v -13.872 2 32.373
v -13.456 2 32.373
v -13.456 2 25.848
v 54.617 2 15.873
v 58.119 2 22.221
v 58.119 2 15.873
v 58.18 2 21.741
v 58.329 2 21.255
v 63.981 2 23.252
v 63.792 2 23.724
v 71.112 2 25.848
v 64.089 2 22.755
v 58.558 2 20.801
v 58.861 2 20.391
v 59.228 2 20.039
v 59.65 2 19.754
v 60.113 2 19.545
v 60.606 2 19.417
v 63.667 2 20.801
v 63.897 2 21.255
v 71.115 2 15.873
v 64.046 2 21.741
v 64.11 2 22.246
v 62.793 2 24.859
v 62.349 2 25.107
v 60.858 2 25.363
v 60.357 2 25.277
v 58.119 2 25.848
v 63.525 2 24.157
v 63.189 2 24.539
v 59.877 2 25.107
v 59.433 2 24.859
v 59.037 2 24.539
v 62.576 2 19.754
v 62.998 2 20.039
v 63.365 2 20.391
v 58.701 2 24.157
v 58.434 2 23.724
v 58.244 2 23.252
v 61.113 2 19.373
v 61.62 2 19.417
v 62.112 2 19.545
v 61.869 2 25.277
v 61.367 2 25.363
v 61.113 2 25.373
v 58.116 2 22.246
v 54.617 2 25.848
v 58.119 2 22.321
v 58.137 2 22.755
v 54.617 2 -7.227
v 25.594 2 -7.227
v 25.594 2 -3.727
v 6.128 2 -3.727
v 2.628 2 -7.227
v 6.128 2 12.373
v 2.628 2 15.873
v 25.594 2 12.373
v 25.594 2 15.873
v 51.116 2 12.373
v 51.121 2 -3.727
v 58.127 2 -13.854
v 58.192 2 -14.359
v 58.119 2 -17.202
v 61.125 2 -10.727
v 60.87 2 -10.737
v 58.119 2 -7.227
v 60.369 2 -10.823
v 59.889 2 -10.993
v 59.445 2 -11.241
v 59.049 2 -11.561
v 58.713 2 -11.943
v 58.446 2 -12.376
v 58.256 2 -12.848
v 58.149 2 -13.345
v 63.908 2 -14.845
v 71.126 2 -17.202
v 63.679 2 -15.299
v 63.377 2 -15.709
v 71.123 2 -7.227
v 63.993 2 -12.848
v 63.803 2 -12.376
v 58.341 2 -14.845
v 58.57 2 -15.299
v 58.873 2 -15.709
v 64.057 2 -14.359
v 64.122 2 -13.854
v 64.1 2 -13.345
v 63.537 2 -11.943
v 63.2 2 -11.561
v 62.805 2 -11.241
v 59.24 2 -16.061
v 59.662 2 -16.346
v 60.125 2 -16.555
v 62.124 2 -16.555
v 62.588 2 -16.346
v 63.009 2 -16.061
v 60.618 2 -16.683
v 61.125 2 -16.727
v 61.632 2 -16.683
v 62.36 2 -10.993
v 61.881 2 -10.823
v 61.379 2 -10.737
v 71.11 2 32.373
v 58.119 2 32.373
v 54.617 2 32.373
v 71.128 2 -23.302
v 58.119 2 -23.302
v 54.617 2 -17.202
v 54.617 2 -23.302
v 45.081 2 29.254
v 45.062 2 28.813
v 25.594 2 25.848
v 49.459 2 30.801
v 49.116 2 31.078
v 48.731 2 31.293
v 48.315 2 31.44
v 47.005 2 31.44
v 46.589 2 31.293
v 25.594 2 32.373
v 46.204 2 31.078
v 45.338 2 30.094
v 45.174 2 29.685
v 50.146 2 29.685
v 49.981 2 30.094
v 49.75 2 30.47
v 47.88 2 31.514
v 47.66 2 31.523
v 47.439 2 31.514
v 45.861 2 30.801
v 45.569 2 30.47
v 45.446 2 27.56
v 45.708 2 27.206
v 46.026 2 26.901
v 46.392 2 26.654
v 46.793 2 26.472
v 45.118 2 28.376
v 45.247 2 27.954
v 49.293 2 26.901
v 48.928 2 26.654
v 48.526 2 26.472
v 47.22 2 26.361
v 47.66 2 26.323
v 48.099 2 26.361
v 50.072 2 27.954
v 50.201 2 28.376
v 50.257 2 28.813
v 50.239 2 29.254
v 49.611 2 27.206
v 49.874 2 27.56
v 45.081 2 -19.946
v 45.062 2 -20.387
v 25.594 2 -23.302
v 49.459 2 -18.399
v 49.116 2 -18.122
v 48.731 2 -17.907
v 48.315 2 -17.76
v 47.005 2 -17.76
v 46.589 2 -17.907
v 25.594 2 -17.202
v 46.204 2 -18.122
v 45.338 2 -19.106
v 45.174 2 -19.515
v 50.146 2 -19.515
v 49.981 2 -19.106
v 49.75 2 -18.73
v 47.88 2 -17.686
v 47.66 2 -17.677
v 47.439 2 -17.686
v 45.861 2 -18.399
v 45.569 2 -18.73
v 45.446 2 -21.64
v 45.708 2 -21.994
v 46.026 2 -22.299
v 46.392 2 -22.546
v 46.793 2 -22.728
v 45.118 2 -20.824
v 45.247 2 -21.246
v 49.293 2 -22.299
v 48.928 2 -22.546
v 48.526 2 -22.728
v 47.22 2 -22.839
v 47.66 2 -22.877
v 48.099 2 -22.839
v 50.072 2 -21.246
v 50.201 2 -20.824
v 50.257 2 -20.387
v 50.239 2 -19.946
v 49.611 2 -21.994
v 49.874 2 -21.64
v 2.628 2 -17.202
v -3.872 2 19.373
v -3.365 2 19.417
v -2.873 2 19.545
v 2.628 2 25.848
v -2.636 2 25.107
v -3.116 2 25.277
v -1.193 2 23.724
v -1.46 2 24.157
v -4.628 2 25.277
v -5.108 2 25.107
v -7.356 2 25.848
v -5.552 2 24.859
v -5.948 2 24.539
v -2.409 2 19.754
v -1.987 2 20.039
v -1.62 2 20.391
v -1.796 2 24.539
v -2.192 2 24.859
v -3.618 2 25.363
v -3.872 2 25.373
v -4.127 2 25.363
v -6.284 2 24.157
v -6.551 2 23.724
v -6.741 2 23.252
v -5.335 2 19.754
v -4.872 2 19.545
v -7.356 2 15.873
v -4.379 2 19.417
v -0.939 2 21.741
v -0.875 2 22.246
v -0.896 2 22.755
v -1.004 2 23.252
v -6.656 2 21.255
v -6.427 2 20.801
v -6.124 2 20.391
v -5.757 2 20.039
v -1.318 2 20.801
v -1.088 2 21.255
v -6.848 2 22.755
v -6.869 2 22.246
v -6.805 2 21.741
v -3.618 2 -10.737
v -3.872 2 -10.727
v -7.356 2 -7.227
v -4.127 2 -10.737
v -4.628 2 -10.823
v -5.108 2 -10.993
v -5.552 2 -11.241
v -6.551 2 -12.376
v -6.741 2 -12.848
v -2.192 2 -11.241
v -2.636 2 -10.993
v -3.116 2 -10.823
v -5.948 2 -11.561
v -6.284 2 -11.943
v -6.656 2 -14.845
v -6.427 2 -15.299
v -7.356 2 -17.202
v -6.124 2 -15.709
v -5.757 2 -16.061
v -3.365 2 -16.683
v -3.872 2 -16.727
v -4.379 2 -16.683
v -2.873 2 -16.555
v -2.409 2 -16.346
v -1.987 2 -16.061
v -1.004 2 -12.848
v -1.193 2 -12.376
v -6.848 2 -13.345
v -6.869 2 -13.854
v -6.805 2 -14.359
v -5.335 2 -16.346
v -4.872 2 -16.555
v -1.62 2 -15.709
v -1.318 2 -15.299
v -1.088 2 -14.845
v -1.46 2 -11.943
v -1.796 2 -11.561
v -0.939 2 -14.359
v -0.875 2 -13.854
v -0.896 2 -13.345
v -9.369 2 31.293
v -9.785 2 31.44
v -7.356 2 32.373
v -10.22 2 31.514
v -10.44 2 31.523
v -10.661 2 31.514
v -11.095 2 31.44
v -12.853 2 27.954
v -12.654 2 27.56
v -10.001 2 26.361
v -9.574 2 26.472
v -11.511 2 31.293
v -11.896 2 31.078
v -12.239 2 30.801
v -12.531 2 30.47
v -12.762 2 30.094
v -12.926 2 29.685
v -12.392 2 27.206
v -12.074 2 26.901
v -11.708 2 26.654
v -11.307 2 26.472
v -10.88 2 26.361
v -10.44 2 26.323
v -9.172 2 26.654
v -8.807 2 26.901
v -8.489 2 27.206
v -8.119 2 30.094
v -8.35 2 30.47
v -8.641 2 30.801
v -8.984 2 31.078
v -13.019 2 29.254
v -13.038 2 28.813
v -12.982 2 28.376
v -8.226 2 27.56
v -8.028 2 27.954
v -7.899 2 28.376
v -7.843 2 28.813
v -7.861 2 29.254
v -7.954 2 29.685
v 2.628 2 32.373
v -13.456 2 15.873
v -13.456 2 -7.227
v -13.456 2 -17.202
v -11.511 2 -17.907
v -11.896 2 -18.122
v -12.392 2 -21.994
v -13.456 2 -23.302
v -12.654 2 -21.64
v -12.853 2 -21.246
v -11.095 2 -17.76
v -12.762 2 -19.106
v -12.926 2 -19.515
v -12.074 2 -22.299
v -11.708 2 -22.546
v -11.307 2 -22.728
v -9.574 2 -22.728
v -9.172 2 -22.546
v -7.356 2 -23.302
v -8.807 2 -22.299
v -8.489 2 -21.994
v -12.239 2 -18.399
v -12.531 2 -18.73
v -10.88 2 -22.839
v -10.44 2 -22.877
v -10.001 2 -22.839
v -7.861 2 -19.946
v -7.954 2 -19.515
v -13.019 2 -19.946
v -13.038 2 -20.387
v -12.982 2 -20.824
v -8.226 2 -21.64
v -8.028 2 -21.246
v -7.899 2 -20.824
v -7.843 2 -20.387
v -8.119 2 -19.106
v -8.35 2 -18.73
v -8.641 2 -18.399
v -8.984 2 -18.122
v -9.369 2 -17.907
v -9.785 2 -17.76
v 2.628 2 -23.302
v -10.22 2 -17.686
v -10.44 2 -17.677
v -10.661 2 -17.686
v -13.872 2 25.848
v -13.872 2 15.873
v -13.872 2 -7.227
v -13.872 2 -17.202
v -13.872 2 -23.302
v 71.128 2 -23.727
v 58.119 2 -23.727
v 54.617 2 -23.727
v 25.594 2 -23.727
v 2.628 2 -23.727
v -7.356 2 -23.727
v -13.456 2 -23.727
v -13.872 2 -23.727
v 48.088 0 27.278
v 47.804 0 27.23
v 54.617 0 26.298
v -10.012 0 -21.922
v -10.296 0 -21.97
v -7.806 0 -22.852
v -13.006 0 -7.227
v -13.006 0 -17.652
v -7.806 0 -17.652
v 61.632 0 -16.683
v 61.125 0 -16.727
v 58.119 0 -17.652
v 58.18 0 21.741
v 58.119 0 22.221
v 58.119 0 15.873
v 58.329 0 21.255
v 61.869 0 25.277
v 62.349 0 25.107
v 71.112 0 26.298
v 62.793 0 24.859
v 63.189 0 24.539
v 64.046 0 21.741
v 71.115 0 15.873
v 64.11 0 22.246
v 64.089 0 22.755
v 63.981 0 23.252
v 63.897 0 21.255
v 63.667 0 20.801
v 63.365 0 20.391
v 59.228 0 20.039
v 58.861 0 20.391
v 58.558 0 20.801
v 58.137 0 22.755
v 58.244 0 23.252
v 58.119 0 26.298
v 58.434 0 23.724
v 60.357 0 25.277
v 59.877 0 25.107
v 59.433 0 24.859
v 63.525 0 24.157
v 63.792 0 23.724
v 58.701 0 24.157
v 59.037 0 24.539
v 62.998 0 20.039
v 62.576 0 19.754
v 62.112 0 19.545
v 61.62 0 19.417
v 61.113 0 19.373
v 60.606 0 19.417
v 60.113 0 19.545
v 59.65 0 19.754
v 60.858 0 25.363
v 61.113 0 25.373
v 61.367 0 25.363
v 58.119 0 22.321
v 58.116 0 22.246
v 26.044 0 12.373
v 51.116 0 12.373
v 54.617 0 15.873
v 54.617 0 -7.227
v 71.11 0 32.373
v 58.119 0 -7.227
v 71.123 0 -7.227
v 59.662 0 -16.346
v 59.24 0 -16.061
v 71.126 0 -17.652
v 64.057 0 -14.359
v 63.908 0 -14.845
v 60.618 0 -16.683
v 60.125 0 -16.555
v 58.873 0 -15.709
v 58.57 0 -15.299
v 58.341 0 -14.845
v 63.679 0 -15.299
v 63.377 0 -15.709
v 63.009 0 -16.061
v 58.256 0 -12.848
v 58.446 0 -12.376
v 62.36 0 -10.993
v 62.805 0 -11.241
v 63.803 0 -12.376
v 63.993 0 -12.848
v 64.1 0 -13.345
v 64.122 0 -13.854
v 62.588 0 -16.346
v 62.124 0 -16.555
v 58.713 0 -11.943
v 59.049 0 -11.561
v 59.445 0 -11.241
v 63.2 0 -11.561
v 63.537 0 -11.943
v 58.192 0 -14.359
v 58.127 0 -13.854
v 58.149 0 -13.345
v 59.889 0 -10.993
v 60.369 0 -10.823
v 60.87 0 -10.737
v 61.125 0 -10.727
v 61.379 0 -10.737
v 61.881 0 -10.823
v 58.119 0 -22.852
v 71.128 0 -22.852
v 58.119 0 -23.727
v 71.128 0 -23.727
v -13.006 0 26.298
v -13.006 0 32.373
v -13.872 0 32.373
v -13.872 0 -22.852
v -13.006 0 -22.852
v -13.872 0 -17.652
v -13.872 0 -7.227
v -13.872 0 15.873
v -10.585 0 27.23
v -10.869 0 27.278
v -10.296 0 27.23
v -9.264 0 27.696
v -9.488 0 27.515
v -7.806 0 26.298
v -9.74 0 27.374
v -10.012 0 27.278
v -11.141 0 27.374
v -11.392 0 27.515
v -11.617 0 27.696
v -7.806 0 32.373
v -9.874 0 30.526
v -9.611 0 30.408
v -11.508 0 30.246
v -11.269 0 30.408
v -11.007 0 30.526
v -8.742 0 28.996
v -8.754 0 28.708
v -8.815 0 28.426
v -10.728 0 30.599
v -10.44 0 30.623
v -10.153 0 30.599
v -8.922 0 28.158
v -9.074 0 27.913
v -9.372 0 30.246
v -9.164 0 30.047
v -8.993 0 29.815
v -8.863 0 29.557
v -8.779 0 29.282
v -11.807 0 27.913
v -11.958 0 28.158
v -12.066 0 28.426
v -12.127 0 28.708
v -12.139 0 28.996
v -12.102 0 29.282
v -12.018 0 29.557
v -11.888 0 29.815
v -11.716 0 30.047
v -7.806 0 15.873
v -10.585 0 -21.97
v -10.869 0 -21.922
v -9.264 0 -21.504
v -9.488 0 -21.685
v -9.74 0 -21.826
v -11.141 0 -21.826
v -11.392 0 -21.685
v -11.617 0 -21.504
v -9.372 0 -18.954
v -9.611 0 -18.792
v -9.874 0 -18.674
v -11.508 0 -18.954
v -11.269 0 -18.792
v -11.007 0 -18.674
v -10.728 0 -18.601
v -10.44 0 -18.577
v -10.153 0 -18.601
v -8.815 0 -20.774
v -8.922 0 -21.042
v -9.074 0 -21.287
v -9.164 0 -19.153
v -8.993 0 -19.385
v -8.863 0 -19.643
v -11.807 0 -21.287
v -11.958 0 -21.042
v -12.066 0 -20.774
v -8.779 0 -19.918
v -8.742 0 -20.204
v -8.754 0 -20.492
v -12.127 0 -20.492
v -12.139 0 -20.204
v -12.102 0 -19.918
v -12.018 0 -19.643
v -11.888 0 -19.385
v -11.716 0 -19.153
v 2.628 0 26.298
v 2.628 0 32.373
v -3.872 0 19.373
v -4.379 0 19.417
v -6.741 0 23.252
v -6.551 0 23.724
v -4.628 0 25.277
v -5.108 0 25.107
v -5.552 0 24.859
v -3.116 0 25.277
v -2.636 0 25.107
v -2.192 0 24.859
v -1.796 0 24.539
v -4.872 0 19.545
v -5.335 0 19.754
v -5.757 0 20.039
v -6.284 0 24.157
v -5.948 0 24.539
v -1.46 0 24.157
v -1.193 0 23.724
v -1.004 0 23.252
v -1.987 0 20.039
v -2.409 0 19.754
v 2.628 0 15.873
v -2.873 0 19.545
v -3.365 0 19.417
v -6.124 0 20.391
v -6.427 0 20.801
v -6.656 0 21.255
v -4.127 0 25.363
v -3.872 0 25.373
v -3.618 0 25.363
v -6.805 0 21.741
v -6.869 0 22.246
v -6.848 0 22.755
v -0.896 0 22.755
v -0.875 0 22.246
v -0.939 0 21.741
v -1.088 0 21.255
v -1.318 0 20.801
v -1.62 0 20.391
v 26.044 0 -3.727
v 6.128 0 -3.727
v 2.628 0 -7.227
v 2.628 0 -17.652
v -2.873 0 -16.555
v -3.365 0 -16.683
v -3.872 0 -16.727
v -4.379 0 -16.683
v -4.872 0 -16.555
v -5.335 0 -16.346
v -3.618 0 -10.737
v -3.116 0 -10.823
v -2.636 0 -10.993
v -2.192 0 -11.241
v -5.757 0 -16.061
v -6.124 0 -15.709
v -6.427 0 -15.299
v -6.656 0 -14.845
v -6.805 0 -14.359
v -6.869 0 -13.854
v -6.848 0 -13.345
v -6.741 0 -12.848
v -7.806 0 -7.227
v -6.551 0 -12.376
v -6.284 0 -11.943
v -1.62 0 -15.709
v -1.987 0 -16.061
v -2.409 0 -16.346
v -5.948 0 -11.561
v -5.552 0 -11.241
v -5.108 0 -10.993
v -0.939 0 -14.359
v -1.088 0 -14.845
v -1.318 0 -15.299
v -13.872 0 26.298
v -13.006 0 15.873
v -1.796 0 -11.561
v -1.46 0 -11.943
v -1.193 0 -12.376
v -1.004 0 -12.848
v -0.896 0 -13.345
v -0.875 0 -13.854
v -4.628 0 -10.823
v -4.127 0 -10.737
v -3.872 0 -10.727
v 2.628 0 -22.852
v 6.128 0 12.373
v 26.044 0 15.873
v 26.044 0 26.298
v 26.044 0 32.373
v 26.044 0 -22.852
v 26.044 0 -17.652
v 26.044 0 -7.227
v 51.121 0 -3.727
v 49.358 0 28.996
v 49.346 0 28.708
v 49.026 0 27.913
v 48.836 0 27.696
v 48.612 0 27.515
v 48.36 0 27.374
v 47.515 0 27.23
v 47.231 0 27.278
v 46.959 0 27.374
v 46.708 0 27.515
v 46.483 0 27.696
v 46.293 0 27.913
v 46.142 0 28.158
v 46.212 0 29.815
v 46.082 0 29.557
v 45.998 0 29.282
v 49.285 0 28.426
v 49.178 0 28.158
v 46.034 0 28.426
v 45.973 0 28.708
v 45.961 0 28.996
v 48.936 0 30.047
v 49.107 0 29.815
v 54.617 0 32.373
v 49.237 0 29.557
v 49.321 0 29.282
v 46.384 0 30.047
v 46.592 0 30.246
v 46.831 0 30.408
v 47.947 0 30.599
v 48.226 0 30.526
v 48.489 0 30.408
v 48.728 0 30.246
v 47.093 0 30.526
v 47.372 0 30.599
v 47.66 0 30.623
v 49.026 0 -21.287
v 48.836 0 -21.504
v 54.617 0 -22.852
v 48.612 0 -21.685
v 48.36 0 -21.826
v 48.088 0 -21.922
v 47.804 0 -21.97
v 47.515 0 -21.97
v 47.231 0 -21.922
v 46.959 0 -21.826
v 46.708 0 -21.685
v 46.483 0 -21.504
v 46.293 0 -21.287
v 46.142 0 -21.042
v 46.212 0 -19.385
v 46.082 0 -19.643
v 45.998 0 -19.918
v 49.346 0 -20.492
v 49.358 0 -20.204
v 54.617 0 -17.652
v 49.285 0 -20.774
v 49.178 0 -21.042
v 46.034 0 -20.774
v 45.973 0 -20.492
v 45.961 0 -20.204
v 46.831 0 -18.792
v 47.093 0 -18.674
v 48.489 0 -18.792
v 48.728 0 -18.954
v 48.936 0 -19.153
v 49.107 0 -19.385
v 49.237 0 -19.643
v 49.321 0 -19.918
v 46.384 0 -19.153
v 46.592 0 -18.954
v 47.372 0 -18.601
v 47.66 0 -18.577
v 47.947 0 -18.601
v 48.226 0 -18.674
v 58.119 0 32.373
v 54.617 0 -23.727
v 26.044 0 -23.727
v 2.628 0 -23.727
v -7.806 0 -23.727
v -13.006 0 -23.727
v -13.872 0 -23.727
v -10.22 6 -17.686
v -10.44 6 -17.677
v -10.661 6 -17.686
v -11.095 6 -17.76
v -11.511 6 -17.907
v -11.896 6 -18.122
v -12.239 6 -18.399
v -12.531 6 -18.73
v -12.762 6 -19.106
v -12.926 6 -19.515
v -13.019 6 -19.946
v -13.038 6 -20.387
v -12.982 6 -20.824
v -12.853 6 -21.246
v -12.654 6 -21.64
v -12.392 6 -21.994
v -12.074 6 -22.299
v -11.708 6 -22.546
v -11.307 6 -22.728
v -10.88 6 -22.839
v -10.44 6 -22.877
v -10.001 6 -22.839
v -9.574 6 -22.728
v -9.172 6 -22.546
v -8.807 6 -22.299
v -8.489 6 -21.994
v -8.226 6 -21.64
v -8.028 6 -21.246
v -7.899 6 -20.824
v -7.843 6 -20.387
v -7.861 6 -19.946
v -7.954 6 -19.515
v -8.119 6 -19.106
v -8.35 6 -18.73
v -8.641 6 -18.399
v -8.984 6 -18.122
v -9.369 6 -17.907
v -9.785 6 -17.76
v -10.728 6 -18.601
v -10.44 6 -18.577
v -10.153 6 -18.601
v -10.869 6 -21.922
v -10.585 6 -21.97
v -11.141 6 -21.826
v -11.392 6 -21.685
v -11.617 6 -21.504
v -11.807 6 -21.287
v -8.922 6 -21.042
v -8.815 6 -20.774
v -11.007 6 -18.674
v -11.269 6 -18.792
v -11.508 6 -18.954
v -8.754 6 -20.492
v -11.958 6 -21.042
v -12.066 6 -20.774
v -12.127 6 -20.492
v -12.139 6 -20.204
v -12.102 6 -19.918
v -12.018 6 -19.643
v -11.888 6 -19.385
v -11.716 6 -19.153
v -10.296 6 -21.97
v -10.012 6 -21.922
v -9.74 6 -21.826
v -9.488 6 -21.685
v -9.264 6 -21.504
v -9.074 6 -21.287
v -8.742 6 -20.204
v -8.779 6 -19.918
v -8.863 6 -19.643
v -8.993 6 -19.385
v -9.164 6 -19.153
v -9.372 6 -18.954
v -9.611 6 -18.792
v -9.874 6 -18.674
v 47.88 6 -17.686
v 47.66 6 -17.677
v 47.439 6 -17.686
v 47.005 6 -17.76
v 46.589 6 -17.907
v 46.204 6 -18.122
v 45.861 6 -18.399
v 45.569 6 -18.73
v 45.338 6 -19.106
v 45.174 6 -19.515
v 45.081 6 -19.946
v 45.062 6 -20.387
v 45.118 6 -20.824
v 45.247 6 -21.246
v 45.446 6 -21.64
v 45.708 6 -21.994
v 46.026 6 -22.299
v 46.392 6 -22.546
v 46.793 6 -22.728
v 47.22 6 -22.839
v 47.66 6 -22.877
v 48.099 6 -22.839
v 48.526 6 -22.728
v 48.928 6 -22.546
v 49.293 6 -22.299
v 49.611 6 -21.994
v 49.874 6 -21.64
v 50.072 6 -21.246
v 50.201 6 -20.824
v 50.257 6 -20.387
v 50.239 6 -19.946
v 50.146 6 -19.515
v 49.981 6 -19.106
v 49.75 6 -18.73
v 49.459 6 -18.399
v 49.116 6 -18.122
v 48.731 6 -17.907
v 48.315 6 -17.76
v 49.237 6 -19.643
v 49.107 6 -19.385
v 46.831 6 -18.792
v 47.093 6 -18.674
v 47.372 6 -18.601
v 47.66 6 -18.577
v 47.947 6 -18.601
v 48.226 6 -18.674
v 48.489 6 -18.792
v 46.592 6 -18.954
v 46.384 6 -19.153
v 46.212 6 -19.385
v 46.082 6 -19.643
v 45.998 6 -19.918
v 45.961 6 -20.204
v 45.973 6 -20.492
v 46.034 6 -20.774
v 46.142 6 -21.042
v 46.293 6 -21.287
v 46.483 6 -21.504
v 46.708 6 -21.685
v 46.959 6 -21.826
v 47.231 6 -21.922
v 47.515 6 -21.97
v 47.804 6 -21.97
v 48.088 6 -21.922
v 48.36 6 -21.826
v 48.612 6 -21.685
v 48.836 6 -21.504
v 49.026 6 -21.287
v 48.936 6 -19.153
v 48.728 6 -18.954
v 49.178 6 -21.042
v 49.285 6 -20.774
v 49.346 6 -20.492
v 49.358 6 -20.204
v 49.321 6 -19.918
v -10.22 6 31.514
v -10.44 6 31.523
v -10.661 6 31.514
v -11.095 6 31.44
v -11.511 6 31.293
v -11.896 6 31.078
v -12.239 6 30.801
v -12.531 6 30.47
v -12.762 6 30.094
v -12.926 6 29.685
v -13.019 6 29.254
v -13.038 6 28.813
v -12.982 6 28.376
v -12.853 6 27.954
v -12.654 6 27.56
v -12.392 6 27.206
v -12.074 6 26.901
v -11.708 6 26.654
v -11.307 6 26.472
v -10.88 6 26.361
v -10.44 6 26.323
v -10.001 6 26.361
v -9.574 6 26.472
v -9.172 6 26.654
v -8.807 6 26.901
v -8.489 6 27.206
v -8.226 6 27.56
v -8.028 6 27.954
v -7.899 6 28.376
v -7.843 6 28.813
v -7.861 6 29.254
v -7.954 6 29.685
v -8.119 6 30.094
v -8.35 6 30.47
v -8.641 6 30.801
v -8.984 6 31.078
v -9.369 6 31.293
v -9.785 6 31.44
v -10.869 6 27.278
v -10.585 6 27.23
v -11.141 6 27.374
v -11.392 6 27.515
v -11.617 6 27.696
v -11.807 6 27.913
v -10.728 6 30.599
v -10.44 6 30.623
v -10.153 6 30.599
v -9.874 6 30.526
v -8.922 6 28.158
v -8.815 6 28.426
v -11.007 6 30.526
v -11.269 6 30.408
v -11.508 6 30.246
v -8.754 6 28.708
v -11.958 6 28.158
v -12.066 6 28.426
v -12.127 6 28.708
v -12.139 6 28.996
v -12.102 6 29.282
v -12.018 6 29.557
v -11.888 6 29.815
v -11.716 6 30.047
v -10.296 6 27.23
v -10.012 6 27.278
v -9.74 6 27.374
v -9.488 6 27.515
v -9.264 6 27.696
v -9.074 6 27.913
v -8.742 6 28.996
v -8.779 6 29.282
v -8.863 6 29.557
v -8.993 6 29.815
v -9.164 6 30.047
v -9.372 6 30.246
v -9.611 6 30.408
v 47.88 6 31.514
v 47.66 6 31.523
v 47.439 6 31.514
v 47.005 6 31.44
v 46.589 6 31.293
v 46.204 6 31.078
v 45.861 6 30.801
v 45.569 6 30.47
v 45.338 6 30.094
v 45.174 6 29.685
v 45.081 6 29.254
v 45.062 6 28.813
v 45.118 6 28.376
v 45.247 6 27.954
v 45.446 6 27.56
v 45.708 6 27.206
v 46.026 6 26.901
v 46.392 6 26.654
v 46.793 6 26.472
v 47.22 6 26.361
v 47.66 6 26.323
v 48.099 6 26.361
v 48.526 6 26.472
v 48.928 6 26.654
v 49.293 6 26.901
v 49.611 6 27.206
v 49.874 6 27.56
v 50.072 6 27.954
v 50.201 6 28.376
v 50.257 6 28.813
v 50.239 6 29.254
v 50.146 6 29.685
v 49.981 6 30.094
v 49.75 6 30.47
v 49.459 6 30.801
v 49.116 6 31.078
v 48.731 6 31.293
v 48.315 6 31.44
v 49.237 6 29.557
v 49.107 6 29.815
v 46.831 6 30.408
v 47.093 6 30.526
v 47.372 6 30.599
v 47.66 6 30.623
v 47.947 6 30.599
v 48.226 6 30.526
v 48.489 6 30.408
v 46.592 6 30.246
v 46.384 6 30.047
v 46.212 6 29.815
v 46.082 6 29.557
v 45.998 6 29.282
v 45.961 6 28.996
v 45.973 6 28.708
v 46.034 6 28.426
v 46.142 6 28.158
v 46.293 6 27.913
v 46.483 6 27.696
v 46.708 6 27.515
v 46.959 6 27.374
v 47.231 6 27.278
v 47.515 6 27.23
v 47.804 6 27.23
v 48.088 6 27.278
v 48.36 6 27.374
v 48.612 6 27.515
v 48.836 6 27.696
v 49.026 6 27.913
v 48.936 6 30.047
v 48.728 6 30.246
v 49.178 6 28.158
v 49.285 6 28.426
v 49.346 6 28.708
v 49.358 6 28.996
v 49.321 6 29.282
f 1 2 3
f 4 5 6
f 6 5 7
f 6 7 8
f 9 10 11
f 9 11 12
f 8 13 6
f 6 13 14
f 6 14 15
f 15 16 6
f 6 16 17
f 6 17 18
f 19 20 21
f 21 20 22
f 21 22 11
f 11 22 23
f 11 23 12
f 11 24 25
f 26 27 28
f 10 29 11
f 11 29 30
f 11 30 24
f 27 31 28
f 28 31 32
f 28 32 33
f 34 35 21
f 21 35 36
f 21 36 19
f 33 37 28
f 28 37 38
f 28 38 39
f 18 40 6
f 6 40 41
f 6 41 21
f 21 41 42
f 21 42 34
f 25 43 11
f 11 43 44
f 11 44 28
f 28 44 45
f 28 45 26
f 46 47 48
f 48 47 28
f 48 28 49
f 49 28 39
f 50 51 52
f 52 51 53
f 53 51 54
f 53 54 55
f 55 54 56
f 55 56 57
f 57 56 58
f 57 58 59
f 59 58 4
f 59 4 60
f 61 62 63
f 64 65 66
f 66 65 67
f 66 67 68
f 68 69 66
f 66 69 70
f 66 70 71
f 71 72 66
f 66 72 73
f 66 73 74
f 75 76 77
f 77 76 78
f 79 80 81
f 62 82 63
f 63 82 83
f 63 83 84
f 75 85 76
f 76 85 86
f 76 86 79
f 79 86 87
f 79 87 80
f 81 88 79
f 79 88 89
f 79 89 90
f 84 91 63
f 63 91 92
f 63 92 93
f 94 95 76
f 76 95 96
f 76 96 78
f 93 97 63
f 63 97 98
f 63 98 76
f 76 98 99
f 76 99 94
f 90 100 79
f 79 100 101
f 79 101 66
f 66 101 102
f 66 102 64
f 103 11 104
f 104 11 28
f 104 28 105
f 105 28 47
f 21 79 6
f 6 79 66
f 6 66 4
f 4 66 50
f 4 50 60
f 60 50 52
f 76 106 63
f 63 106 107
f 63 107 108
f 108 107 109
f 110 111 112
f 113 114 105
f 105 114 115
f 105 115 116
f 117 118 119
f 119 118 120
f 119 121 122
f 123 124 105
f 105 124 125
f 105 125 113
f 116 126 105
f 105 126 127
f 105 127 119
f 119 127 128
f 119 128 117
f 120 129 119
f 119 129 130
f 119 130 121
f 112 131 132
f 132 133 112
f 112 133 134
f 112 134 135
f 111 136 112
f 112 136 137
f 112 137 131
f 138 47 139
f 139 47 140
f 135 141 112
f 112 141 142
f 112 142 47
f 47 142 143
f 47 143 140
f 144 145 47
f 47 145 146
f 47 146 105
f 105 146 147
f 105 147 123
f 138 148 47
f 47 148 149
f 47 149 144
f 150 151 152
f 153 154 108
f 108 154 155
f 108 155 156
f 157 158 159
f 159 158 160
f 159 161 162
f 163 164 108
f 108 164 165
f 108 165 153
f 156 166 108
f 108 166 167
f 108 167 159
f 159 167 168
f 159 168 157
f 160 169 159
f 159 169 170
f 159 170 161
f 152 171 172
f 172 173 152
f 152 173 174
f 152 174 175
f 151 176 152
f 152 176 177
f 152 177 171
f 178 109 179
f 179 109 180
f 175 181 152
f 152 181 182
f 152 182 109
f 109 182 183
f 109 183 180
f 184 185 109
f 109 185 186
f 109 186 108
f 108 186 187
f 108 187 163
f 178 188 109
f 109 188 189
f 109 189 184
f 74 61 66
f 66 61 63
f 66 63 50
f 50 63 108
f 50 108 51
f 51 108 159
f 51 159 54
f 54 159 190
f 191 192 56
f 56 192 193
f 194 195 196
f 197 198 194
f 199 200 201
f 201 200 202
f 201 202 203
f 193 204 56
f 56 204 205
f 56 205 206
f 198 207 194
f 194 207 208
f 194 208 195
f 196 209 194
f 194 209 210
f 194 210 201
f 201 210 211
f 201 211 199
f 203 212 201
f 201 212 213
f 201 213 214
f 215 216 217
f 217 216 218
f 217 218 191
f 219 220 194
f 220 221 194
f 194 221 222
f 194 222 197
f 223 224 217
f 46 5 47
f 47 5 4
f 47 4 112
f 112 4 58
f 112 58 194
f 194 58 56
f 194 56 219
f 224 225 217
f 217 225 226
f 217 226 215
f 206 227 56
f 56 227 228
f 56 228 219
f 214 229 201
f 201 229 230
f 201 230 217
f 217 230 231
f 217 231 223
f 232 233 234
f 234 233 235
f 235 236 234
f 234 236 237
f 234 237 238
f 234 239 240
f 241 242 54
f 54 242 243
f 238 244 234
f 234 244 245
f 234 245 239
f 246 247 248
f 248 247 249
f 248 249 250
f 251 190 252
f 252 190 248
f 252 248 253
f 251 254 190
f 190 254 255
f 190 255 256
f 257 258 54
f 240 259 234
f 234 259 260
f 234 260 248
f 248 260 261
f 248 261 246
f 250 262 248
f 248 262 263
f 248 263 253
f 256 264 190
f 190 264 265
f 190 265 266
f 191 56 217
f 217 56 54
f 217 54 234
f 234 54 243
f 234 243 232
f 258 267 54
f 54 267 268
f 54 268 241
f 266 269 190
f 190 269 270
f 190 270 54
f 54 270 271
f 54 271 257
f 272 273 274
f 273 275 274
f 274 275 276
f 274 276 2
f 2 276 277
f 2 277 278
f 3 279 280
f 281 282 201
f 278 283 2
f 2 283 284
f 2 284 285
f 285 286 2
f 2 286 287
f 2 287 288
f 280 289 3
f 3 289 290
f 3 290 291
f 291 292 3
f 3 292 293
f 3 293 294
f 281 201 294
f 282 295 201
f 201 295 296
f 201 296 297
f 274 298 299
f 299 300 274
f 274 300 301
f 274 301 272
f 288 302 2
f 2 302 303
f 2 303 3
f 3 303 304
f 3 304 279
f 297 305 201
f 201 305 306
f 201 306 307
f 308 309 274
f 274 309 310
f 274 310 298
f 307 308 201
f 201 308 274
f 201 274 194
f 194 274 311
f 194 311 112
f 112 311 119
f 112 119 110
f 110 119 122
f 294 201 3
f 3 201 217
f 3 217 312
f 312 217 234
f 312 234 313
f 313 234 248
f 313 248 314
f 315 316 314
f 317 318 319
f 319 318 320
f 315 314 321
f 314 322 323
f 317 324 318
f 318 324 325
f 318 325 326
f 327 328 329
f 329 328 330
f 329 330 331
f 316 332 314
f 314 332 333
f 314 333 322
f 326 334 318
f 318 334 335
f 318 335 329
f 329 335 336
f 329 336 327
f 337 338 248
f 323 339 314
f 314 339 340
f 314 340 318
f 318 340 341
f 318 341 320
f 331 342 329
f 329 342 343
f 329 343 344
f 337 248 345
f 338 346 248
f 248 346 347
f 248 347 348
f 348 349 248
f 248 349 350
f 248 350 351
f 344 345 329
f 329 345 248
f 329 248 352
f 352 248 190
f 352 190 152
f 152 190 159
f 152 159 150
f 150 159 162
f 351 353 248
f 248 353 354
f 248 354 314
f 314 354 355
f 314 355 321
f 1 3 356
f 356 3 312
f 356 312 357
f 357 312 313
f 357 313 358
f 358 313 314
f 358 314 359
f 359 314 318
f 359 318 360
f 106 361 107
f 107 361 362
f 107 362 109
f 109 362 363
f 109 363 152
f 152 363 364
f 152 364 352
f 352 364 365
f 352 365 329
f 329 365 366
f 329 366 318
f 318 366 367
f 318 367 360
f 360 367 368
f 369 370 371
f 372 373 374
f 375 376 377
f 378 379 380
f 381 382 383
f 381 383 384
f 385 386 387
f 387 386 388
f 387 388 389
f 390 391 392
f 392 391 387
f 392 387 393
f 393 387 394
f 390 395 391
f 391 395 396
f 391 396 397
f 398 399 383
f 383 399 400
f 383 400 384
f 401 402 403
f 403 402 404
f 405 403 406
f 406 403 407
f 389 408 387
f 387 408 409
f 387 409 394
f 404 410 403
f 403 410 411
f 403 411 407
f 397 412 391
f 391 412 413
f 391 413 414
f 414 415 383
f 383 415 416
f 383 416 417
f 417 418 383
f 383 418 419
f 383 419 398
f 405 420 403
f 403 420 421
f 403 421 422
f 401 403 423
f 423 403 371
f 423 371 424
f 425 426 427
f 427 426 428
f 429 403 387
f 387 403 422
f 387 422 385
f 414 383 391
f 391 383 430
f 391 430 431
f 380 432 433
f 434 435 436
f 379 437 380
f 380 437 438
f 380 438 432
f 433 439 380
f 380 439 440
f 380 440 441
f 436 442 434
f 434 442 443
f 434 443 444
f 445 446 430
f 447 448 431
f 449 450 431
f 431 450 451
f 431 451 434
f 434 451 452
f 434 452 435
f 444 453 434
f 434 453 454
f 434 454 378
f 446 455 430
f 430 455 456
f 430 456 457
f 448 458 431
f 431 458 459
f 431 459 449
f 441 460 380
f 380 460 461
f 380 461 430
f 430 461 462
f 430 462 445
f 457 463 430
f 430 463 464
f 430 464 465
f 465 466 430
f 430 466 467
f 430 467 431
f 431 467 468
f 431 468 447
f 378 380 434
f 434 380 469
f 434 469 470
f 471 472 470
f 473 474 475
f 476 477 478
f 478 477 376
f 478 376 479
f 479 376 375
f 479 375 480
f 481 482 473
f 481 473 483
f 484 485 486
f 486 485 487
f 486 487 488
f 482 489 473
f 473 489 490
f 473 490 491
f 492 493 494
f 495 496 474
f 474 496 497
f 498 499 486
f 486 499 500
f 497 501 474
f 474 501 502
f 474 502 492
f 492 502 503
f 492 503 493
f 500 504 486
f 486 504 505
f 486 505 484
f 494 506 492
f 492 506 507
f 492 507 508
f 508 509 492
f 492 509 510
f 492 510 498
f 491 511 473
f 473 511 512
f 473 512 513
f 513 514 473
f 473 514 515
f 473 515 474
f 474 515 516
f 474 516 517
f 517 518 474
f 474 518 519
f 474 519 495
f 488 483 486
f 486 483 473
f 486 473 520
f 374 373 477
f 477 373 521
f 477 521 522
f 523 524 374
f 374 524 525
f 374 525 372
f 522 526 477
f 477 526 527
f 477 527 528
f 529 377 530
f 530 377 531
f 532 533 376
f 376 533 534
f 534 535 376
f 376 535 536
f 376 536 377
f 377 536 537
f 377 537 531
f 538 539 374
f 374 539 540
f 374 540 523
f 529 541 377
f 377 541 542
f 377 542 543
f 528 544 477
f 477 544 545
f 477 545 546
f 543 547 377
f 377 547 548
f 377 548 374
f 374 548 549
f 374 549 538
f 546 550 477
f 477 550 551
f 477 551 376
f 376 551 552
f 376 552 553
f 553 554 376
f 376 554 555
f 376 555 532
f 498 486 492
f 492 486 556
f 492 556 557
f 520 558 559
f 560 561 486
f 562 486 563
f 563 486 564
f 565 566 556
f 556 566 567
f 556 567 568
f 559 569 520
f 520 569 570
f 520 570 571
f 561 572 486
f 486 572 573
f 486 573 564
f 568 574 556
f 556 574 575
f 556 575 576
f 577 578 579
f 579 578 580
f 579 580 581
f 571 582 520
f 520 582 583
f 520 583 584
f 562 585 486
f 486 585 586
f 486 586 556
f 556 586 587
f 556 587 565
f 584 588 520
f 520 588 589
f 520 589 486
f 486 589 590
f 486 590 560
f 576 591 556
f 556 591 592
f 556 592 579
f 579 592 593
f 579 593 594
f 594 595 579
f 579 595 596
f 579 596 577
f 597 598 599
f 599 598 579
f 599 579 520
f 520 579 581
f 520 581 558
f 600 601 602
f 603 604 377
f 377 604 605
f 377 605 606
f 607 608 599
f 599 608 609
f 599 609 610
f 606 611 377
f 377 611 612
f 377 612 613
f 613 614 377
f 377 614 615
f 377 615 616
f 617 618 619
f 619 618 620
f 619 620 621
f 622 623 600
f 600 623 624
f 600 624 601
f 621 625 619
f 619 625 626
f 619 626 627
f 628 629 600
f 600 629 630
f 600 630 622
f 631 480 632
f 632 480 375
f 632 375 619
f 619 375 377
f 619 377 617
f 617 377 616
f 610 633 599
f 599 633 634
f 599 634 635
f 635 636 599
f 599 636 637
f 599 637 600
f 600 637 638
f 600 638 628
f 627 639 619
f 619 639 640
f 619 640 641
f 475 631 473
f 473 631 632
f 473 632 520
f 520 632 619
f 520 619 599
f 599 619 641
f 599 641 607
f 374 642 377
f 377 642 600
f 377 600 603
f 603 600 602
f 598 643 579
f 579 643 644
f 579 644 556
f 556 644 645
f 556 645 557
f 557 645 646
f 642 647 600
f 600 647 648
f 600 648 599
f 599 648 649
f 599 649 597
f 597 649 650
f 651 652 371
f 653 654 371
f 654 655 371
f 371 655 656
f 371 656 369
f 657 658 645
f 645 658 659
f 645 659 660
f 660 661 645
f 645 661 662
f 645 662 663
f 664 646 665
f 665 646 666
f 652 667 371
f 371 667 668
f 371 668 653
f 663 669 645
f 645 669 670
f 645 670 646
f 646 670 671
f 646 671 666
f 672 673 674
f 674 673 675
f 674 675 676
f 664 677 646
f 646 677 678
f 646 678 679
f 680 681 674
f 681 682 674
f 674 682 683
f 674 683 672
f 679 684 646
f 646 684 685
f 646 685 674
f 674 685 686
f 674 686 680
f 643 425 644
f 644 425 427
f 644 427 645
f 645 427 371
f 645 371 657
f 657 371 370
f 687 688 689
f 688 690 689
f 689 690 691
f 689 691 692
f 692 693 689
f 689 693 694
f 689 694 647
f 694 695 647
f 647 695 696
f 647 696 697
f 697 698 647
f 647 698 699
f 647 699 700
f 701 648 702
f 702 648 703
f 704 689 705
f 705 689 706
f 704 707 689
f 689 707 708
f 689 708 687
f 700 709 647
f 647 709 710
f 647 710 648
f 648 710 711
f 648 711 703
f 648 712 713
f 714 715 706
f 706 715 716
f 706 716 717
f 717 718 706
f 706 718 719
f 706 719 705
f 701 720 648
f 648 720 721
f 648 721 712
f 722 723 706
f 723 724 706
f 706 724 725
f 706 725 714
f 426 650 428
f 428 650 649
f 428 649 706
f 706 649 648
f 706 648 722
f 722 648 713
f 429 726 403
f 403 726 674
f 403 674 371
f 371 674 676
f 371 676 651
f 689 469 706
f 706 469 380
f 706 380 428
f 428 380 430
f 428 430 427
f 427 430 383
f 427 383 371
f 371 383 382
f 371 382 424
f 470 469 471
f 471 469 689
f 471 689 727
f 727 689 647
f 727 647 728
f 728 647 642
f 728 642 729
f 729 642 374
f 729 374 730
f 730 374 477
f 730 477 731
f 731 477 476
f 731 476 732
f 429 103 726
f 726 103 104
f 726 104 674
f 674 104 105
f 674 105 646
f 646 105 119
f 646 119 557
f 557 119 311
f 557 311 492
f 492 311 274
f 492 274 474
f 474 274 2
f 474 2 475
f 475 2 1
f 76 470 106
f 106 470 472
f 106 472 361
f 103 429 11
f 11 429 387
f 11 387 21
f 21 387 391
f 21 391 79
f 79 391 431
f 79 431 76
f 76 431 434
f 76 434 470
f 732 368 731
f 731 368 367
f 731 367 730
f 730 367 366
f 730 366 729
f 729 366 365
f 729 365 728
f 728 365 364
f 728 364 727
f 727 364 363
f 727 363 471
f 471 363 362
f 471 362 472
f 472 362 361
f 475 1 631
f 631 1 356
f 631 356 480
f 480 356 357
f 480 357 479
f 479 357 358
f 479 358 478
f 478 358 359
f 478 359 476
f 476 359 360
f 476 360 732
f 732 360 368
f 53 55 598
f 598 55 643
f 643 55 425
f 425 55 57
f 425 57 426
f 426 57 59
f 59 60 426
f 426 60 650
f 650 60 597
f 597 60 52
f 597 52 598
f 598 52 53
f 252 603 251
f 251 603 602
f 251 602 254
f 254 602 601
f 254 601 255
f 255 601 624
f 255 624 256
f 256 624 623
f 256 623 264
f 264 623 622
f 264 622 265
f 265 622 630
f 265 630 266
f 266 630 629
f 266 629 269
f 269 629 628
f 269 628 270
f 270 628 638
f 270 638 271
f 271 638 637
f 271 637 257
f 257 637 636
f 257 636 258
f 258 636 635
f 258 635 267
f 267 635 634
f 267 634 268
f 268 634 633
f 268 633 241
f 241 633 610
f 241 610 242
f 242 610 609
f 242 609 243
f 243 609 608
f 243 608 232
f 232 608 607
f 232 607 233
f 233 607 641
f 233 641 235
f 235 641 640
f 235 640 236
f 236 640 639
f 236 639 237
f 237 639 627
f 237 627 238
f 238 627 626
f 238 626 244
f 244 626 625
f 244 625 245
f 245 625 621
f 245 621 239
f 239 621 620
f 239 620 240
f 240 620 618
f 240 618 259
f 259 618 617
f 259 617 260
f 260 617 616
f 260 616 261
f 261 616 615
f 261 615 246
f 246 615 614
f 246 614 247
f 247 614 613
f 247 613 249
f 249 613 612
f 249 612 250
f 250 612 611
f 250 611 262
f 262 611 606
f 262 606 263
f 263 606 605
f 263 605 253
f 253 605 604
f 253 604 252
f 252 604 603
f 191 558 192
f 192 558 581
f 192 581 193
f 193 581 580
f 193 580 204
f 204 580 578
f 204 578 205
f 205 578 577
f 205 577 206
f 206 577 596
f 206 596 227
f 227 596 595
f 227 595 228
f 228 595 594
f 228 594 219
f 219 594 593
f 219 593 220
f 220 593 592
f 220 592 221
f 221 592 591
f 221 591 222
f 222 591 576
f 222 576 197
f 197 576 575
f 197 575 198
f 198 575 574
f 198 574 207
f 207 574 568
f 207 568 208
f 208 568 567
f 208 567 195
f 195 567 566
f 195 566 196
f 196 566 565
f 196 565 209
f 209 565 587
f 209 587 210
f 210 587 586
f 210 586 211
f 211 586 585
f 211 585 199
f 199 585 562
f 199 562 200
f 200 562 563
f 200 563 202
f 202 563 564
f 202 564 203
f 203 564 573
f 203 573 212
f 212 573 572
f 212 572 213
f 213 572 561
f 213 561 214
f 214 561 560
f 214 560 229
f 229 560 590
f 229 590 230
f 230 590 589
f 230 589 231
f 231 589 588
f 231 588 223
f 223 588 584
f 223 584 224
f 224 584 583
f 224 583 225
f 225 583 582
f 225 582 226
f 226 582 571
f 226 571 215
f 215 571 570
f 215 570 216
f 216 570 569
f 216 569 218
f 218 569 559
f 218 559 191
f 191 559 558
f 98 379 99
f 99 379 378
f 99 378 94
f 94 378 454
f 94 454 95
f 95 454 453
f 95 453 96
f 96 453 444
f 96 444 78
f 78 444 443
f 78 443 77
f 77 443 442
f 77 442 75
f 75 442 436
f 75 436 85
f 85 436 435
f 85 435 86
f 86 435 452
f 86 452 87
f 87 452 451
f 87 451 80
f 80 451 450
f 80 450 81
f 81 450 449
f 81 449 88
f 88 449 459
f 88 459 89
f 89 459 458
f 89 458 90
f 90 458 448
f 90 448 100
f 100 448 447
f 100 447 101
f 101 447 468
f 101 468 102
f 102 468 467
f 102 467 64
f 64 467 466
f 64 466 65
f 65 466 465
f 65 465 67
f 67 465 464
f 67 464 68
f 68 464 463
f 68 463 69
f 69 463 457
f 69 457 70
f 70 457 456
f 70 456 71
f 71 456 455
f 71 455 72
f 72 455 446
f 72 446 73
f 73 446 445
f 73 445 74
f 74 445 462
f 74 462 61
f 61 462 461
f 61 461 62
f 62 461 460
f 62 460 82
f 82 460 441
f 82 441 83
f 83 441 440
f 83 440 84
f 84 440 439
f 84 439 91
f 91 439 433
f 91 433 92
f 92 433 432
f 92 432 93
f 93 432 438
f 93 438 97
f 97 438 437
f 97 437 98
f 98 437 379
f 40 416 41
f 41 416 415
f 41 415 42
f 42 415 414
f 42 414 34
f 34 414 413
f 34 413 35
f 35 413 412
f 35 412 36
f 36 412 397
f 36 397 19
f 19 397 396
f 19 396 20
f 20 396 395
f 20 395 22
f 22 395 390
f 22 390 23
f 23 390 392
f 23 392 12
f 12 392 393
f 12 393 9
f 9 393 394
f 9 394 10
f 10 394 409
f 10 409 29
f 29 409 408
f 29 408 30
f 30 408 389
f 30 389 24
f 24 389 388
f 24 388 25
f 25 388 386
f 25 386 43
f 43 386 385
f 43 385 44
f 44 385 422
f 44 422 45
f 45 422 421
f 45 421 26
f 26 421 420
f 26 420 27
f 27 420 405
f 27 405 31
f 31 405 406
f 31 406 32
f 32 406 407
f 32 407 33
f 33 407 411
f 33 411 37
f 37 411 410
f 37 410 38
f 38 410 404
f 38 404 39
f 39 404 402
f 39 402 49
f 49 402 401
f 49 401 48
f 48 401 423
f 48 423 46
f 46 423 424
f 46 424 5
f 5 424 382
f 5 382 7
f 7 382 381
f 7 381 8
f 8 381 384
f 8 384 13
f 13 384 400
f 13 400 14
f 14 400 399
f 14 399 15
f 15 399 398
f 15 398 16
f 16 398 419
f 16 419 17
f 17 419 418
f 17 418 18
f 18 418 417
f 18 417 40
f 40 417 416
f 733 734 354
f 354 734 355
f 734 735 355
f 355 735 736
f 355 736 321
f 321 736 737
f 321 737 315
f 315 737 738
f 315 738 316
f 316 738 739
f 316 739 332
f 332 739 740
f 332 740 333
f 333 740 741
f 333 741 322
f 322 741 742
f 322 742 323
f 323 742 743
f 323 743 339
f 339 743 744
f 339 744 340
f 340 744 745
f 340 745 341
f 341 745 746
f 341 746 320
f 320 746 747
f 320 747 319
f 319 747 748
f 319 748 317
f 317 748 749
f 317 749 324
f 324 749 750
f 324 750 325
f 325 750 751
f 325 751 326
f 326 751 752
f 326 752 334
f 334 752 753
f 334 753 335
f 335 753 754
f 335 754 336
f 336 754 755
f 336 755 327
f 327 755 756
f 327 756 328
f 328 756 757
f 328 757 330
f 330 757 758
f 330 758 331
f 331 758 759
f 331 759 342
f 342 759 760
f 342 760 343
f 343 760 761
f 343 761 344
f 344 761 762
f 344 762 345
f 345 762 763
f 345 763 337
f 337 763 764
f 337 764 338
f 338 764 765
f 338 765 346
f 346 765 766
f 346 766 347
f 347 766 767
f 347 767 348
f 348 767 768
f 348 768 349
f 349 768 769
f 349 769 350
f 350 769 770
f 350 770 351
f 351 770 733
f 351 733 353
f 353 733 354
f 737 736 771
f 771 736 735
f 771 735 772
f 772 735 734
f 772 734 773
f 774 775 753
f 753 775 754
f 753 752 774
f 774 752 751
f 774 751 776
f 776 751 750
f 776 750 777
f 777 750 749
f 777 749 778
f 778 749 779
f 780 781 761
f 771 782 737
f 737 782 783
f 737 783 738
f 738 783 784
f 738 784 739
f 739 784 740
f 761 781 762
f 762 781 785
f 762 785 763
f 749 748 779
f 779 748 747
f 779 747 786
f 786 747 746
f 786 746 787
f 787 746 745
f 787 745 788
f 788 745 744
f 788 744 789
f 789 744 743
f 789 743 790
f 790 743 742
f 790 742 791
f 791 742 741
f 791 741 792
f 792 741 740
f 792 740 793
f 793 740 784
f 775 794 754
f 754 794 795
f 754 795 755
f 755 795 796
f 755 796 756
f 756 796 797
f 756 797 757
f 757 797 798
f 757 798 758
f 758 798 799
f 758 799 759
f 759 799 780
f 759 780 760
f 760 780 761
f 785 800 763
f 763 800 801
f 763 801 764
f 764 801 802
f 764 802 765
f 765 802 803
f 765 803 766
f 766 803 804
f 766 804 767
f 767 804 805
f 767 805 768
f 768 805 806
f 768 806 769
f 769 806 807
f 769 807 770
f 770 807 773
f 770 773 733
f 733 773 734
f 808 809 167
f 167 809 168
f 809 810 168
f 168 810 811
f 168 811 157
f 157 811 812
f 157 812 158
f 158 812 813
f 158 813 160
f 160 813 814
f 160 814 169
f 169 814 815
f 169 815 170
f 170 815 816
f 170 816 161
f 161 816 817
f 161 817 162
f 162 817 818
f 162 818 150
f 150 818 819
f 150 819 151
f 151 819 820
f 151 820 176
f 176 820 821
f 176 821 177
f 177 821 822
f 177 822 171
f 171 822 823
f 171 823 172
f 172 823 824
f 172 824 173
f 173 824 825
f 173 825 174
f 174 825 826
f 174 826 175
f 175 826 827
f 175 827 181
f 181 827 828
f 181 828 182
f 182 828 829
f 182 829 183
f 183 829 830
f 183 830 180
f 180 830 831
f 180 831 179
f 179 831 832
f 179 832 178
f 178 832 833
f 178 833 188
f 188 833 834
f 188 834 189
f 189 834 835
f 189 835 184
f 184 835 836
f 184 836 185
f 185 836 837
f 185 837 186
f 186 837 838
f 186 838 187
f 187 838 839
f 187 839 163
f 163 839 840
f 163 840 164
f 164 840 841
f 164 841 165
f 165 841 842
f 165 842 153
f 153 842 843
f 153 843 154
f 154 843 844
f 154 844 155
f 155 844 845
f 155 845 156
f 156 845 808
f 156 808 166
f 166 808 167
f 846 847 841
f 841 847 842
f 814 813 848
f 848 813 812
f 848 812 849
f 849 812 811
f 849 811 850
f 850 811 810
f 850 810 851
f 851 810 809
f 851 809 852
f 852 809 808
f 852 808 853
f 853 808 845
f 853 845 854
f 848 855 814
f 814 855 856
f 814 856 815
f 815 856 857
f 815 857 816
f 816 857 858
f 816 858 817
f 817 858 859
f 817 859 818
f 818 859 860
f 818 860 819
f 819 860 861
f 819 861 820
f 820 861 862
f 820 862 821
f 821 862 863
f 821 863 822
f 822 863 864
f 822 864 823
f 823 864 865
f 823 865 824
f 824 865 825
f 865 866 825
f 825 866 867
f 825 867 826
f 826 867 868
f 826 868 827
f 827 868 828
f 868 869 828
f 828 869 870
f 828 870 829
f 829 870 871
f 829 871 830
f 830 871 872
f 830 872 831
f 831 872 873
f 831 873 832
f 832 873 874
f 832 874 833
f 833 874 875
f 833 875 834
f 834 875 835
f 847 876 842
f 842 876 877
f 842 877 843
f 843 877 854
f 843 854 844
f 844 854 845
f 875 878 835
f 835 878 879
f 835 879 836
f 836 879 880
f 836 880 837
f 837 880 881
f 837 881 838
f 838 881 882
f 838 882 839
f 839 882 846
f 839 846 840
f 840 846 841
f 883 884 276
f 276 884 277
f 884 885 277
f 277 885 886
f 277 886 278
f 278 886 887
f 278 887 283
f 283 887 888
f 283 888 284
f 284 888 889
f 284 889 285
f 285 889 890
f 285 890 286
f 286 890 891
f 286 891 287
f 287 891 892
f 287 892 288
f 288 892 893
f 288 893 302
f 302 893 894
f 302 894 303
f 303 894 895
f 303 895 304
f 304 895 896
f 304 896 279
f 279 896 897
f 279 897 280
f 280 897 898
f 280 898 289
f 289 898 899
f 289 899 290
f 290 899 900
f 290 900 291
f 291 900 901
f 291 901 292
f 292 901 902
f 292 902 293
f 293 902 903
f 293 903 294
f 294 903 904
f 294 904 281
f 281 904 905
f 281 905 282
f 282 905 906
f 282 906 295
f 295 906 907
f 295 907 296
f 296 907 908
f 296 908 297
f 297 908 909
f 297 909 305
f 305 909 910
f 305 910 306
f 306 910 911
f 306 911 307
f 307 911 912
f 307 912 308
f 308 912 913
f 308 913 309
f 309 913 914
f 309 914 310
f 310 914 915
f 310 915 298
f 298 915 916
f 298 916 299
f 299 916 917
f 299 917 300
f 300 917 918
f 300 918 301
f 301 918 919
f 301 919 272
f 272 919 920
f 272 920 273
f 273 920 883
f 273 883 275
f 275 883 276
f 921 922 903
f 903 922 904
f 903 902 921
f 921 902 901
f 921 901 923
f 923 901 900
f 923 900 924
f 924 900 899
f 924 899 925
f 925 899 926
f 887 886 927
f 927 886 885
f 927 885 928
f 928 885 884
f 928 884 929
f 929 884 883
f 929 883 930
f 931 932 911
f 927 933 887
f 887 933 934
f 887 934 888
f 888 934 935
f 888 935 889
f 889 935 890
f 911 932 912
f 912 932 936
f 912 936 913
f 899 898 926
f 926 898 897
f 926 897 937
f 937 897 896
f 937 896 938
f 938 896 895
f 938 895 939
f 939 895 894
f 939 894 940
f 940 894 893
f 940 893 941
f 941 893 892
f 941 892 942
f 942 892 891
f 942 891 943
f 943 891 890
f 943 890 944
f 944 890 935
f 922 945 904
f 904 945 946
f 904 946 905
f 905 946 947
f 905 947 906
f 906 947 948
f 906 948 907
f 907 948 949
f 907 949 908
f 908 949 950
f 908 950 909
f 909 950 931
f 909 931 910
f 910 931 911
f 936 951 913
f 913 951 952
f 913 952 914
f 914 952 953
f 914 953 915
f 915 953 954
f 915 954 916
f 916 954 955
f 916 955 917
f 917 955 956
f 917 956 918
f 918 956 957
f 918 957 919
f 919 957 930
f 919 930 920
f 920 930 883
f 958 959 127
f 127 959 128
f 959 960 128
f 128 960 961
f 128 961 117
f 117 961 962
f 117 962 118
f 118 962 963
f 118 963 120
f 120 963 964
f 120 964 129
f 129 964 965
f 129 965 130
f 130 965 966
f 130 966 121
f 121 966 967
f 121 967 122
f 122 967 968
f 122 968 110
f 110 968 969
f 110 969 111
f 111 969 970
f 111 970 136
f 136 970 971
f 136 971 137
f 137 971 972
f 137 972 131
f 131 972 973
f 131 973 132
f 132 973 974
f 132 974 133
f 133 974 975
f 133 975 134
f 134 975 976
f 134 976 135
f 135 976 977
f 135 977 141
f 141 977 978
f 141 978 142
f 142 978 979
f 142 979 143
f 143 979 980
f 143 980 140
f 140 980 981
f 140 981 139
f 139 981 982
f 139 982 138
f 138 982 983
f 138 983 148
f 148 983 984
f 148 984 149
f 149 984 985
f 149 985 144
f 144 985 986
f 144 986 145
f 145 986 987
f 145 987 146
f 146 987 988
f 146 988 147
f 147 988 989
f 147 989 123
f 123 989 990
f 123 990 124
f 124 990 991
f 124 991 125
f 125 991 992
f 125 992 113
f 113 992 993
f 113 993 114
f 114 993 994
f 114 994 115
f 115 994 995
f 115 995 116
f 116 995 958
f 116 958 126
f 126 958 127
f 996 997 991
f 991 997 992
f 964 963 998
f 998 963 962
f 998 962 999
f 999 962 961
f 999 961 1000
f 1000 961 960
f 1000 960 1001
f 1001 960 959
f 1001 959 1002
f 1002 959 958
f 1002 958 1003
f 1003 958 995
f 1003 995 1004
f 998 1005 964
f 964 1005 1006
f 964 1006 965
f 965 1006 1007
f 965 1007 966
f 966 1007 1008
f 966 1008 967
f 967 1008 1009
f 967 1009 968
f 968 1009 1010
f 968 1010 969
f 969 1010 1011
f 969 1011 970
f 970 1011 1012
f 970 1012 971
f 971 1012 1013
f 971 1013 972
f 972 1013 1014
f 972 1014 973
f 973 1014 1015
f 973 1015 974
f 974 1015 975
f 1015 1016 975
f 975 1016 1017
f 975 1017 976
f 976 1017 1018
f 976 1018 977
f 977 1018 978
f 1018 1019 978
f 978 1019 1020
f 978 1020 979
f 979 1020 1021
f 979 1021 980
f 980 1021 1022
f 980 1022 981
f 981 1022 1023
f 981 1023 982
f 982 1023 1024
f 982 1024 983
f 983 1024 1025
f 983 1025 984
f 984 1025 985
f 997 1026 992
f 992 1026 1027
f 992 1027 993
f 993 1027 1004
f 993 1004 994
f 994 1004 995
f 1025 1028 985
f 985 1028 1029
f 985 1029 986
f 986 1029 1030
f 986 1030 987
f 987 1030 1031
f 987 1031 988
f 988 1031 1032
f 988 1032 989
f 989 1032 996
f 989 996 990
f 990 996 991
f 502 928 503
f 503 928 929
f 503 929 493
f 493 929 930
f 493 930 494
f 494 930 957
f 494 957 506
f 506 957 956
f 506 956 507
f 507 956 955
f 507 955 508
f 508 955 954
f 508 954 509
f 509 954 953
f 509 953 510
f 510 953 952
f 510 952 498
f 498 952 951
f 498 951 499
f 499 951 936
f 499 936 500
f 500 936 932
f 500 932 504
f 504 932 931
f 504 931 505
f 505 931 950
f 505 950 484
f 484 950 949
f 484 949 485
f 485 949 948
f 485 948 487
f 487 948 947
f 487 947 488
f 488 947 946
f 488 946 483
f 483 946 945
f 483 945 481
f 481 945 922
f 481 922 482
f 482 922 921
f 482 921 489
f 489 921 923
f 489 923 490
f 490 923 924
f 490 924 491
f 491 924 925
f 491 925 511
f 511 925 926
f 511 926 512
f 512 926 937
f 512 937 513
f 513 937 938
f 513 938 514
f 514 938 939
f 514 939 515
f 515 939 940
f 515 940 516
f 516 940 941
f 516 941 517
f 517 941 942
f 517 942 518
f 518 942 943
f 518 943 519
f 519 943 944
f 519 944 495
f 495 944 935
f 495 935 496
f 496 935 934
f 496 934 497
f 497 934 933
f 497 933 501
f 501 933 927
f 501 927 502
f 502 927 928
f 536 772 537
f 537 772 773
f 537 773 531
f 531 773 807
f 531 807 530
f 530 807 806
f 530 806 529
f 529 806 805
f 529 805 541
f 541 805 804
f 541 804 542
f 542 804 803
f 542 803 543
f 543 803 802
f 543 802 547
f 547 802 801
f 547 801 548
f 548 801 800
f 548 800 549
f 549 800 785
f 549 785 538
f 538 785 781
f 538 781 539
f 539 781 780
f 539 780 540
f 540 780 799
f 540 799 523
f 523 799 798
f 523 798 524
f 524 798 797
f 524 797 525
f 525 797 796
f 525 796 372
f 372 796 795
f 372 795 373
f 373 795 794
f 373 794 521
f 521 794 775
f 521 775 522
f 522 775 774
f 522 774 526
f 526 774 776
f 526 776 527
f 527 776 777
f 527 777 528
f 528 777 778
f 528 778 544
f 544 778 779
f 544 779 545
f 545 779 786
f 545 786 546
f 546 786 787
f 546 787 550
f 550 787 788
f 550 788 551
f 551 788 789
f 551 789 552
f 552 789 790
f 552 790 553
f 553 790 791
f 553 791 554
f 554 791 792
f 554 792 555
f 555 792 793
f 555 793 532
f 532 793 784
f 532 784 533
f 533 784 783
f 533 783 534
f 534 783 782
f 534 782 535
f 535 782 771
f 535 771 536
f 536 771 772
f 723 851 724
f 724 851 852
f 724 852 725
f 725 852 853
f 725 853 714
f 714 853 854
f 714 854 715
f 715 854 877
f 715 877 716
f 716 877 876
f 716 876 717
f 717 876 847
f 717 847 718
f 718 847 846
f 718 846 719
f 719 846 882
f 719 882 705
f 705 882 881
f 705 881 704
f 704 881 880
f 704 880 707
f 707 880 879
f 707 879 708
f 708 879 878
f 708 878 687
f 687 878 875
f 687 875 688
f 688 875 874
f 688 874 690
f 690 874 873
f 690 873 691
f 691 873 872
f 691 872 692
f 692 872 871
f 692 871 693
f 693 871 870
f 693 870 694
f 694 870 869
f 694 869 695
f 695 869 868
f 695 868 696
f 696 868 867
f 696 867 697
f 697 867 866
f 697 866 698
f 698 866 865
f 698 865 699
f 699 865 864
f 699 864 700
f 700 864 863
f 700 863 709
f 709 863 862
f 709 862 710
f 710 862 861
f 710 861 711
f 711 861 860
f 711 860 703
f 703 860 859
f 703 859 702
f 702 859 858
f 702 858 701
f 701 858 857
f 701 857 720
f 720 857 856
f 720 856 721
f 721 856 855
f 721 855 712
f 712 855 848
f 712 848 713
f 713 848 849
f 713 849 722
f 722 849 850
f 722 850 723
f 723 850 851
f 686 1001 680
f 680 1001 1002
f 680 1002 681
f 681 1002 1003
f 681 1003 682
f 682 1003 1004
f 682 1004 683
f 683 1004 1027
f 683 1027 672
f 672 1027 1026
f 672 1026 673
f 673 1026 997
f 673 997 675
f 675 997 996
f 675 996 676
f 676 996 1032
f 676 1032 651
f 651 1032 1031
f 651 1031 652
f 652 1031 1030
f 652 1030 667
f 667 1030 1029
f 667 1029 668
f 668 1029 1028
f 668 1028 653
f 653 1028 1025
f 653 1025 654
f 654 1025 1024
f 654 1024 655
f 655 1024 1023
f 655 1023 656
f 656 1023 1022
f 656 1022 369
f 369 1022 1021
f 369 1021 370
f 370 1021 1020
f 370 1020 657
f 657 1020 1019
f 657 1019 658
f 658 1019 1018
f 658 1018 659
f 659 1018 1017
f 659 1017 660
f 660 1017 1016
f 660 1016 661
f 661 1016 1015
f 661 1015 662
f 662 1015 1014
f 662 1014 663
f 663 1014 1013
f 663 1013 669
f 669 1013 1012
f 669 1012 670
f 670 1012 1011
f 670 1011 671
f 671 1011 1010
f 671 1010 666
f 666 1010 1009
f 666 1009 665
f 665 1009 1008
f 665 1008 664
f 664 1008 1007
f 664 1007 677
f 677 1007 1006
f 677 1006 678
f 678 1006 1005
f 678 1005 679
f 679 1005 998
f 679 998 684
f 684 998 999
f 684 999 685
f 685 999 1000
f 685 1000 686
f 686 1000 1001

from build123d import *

# Parameters (mm, degrees)
BOSS_EXTRUDE1_DEPTH     = 2
CUT_EXTRUDE2_DEPTH      = 2
WALL_MOUNT_HOLES_R      = 3
CUT_EXTRUDE3_DEPTH      = 2
STANDOFF_MOUNTS_R       = 2.6
BOSS_EXTRUDE3_DEPTH     = 4
ODROID_C1_MOUNT_HOLES_R = 1.7
CUT_EXTRUDE4_DEPTH      = 6


with BuildPart() as part:
    # Base plate → Boss-Extrude1 (new body)
    with BuildSketch(Plane(origin=(0, 0, 0), x_dir=(1, 0, 0), z_dir=(0, 1, 0))):
        Polygon((-13.872098625, 23.726545041), (71.127901375, 23.726545041), (71.10965601, -32.373454959), (-13.872098625, -32.373454959), align=None)
    extrude(amount=BOSS_EXTRUDE1_DEPTH)

    # Base Plate Hole → Cut-Extrude2 (cut)
    with BuildSketch(Plane(origin=(0, 0, 0), x_dir=(1, 0, 0), z_dir=(0, 1, 0))):
        Polygon((6.127901375, 3.726545041), (51.121395731, 3.726545041), (51.116159539, -12.373454959), (6.127901375, -12.373454959), align=None)
    extrude(amount=CUT_EXTRUDE2_DEPTH, mode=Mode.SUBTRACT)

    # Wall Mount Holes → Cut-Extrude3 (cut)
    with BuildSketch(Plane(origin=(0, 0, 0), x_dir=(1, 0, 0), z_dir=(0, 1, 0))):
        with Locations(Location((-3.872098625, 13.726545041, 0), (0, 0, 270))):
            Circle(WALL_MOUNT_HOLES_R)
        with Locations(Location((-3.872098625, -22.373454959, 0), (0, 0, 270))):
            Circle(WALL_MOUNT_HOLES_R)
        with Locations(Location((61.124648553, 13.726545041, 0), (0, 0, 270))):
            Circle(WALL_MOUNT_HOLES_R)
        with Locations(Location((61.112907774, -22.373454959, 0), (0, 0, 270))):
            Circle(WALL_MOUNT_HOLES_R)
    extrude(amount=CUT_EXTRUDE3_DEPTH, mode=Mode.SUBTRACT)

    # Standoff Mounts → Boss-Extrude3 (add)
    with BuildSketch(Plane(origin=(0, 2, 0), x_dir=(1, 0, 0), z_dir=(0, 1, 0))):
        with Locations(Location((-10.44034399, 20.276545041, 0), (0, 0, 270))):
            Circle(STANDOFF_MOUNTS_R)
        with Locations(Location((47.65965601, 20.276545041, 0), (0, 0, 270))):
            Circle(STANDOFF_MOUNTS_R)
        with Locations(Location((-10.44034399, -28.923454959, 0), (0, 0, 270))):
            Circle(STANDOFF_MOUNTS_R)
        with Locations(Location((47.65965601, -28.923454959, 0), (0, 0, 270))):
            Circle(STANDOFF_MOUNTS_R)
    extrude(amount=BOSS_EXTRUDE3_DEPTH)

    # Odroid C1 Mount Holes → Cut-Extrude4 (cut)
    with BuildSketch(Plane(origin=(0, 6, 0), x_dir=(1, 0, 0), z_dir=(0, 1, 0))):
        with Locations(Location((-10.44034399, -28.923454959, 0), (0, 0, 270))):
            Circle(ODROID_C1_MOUNT_HOLES_R)
        with Locations(Location((-10.44034399, 20.276545041, 0), (0, 0, 270))):
            Circle(ODROID_C1_MOUNT_HOLES_R)
        with Locations(Location((47.65965601, 20.276545041, 0), (0, 0, 270))):
            Circle(ODROID_C1_MOUNT_HOLES_R)
        with Locations(Location((47.65965601, -28.923454959, 0), (0, 0, 270))):
            Circle(ODROID_C1_MOUNT_HOLES_R)
    extrude(amount=-CUT_EXTRUDE4_DEPTH, mode=Mode.SUBTRACT)


solid = part.part
